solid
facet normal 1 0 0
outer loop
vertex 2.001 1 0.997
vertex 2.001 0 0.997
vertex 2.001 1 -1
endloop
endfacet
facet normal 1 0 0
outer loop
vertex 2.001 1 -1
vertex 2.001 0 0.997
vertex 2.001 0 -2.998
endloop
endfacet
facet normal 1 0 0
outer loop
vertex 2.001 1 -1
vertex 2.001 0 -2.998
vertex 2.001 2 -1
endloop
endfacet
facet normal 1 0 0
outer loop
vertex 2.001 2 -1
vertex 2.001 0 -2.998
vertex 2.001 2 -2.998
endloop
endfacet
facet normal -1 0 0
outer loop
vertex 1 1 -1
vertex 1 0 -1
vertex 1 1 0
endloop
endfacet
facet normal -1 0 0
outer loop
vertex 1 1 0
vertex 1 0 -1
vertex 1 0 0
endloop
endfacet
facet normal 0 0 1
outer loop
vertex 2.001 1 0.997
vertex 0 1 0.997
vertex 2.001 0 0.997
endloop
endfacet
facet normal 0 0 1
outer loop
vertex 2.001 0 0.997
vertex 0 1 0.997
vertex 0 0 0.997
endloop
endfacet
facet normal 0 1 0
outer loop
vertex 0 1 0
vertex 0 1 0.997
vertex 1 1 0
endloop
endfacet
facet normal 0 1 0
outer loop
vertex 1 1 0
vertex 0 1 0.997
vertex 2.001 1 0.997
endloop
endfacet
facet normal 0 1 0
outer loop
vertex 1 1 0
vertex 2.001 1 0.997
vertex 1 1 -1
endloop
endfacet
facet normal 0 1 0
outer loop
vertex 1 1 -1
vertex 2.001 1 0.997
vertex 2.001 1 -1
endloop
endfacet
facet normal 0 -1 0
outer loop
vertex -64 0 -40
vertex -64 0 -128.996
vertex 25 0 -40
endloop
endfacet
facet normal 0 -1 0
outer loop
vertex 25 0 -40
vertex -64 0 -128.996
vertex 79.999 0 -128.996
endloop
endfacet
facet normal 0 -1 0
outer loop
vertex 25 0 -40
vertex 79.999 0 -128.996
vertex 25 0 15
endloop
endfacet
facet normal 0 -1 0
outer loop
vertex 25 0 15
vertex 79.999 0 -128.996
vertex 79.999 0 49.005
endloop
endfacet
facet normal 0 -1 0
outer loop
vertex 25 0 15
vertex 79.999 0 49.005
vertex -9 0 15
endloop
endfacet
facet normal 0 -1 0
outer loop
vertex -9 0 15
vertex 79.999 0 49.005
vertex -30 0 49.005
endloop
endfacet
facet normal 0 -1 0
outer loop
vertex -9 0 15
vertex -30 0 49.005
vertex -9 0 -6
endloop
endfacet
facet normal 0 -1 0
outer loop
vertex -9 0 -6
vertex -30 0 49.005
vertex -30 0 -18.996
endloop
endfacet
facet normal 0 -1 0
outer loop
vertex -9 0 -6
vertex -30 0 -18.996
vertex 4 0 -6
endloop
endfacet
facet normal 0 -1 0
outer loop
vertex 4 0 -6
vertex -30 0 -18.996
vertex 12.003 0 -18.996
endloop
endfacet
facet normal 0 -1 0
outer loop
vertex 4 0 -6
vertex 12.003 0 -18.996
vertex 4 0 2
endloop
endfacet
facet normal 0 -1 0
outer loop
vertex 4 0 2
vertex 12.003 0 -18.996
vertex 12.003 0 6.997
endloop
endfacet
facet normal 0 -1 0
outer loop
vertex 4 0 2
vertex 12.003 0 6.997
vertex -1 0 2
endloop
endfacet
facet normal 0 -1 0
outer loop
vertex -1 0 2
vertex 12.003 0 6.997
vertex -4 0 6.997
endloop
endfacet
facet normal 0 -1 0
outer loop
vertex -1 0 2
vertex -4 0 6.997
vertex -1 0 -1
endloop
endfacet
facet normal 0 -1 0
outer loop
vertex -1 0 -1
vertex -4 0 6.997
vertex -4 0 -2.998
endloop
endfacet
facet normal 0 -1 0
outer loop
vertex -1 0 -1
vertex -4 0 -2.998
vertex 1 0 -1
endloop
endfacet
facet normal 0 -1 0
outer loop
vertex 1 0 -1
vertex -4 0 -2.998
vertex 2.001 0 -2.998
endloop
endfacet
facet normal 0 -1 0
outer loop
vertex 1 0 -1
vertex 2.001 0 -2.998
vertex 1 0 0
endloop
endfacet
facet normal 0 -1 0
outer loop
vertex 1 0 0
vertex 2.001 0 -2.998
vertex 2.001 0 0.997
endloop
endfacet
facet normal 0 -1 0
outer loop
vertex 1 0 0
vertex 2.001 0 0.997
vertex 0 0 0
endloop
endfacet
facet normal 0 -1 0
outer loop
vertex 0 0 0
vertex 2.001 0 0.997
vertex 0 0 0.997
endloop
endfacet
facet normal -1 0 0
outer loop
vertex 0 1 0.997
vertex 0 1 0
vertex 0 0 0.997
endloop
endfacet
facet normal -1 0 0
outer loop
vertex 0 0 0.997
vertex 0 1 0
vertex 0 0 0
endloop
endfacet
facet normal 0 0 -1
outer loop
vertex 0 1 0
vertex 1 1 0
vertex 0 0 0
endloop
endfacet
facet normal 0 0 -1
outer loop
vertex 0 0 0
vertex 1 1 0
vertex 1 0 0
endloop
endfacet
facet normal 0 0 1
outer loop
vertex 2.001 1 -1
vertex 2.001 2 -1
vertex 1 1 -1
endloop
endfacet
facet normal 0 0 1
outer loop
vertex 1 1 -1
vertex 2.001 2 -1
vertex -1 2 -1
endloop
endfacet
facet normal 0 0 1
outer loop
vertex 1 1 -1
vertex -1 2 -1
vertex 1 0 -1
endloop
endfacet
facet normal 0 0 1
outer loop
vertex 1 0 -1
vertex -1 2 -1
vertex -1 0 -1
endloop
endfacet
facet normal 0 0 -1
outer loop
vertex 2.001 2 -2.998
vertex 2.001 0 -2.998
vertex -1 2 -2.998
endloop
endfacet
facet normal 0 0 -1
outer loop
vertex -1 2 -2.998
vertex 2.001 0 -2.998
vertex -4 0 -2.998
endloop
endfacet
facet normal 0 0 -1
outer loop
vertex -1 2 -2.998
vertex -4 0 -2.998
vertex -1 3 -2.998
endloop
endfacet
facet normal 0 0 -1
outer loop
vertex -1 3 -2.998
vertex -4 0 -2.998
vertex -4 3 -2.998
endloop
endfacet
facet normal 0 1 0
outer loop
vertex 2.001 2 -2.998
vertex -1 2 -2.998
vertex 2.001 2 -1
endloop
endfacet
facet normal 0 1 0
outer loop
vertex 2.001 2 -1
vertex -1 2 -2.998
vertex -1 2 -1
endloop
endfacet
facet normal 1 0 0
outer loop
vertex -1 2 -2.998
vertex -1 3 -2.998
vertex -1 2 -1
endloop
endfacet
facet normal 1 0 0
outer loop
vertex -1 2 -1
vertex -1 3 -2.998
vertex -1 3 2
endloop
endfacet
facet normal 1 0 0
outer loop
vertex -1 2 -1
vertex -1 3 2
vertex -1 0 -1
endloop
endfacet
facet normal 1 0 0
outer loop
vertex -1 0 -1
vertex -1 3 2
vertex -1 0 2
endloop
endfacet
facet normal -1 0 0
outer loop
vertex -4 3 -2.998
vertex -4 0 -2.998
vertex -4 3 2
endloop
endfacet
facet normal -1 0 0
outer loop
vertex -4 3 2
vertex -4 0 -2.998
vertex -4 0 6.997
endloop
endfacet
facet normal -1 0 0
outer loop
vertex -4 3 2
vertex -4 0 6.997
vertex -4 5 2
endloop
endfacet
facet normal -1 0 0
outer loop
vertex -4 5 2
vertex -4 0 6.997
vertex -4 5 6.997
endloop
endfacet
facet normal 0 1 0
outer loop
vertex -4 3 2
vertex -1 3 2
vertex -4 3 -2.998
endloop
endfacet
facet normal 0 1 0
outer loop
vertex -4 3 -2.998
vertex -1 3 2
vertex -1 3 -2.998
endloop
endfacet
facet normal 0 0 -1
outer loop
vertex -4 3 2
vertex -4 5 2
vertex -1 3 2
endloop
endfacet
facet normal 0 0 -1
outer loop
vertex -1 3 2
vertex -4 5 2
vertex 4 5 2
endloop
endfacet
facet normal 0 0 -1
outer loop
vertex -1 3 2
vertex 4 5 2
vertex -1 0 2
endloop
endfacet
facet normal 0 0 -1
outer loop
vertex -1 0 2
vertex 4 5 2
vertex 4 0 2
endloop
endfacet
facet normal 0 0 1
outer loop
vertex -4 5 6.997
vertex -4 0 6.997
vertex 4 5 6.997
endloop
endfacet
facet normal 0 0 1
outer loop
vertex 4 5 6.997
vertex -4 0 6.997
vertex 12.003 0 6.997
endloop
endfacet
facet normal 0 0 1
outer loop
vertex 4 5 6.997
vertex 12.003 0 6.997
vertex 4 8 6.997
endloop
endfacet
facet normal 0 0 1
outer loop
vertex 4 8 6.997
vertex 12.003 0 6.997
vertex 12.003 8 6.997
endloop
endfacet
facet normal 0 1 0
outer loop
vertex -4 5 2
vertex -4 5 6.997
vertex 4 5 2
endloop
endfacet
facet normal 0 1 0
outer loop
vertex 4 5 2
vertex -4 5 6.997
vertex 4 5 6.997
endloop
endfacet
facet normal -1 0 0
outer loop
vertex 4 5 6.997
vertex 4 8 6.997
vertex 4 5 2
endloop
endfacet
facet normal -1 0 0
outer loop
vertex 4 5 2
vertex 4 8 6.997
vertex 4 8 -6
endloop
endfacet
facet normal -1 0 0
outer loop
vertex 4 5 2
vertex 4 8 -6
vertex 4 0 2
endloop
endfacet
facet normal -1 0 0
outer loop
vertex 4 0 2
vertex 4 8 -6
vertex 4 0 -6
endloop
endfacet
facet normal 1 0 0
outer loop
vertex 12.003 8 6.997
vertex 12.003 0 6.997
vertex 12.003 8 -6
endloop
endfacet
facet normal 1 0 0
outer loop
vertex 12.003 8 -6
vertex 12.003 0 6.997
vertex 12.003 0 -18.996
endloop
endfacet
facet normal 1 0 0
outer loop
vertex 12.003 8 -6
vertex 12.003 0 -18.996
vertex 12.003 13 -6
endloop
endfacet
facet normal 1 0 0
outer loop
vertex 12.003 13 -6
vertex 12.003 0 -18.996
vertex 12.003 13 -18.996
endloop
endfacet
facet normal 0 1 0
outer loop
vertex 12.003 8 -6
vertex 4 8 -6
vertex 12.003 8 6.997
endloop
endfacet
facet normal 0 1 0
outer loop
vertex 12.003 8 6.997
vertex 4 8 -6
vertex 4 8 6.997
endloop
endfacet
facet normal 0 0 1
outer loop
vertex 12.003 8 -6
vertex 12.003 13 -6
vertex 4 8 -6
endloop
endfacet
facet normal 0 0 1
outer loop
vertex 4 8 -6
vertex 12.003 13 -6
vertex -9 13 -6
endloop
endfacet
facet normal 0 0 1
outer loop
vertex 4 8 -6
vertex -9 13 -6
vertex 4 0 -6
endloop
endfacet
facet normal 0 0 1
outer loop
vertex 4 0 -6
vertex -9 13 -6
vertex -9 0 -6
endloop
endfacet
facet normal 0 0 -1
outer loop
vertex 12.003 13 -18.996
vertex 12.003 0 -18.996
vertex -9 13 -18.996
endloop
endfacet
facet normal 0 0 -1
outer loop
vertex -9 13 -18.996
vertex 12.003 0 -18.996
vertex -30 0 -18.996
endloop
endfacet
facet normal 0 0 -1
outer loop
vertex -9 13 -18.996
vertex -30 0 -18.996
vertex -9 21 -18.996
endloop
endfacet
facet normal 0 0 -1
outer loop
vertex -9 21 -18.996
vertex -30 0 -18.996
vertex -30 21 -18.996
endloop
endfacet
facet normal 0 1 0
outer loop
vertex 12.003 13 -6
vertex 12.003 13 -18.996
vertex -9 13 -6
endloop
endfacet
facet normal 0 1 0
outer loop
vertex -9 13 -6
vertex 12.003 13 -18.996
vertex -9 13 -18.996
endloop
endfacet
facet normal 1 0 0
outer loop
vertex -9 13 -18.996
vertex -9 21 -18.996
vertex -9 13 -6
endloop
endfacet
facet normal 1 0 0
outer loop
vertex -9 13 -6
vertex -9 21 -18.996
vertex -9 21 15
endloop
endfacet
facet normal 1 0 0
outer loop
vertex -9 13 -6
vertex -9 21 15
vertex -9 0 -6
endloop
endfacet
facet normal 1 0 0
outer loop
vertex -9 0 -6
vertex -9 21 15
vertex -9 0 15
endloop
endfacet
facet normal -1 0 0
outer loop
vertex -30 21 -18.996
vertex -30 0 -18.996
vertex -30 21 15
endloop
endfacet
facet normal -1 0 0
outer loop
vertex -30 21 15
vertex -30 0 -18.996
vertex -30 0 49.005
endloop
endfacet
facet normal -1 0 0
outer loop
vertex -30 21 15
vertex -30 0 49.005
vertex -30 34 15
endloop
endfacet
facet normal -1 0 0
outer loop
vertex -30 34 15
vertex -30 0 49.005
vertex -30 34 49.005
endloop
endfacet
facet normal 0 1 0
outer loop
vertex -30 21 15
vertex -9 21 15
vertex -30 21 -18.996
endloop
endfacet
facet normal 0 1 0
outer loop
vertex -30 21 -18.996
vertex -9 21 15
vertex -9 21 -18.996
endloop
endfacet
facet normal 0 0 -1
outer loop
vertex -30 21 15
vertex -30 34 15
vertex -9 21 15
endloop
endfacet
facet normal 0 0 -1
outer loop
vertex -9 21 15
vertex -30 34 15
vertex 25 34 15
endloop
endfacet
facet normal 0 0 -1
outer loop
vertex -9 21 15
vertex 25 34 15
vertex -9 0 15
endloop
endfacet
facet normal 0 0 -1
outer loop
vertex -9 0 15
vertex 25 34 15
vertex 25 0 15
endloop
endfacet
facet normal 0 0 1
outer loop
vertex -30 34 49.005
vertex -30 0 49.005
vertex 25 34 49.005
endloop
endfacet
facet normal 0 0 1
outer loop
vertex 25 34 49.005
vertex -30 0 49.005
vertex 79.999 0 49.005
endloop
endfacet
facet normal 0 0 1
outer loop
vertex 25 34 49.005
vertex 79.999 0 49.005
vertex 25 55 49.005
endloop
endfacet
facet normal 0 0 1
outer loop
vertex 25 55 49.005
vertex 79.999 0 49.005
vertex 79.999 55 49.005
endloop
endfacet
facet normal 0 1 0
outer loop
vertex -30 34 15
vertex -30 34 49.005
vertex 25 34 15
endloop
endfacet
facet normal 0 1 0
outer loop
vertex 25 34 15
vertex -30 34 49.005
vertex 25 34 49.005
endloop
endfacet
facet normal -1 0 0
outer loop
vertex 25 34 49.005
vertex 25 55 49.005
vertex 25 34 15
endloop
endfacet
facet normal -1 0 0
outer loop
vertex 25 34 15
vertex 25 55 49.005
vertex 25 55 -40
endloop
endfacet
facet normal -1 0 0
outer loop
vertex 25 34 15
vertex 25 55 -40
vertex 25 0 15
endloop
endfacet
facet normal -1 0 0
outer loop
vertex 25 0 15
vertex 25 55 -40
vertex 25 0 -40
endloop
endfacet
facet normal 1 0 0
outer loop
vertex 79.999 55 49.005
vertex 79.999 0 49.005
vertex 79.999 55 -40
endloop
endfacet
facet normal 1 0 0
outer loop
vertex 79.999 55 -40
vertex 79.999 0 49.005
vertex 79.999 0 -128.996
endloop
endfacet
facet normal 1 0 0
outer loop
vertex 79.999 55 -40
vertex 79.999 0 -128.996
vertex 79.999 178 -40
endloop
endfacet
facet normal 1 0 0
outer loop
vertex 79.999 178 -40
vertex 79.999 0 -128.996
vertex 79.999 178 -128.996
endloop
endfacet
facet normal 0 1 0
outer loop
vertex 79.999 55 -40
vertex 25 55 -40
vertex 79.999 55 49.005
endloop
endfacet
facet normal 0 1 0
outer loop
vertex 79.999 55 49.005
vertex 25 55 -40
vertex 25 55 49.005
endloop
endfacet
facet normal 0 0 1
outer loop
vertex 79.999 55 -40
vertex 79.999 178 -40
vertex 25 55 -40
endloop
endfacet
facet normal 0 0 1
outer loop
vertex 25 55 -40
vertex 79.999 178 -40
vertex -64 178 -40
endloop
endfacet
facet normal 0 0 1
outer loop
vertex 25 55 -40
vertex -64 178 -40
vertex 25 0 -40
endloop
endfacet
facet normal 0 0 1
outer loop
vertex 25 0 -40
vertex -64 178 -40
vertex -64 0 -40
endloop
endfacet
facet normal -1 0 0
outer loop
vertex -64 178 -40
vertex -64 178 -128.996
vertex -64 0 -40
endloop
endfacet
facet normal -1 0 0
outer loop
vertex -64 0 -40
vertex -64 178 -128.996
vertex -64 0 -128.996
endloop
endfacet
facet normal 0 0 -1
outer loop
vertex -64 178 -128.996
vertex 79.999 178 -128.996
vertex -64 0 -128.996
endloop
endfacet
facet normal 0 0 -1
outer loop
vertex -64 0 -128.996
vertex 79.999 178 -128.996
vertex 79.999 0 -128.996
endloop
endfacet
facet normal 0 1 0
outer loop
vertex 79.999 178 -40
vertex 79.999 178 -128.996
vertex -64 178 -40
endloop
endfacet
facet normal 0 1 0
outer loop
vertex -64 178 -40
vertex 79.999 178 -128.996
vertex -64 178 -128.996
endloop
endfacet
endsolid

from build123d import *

# Parameters (mm, degrees)
BOSS_EXTRUDE1_DEPTH  = 1
BOSS_EXTRUDE2_DEPTH  = 2
BOSS_EXTRUDE3_DEPTH  = 3
BOSS_EXTRUDE4_DEPTH  = 5
BOSS_EXTRUDE5_DEPTH  = 8
BOSS_EXTRUDE6_DEPTH  = 13
BOSS_EXTRUDE7_DEPTH  = 21
BOSS_EXTRUDE8_DEPTH  = 34
BOSS_EXTRUDE9_DEPTH  = 55
BOSS_EXTRUDE10_DEPTH = 178


with BuildPart() as part:
    # Sketch1 → Boss-Extrude1 (new body)
    with BuildSketch(Plane(origin=(0, 0, 0), x_dir=(1, 0, 0), z_dir=(0, 1, 0))):
        Polygon((1, 0), (0, 0), (0, -0.997190903), (2.001284941, -0.997190903), (2.001284941, 1), (1, 1), align=None)
    extrude(amount=BOSS_EXTRUDE1_DEPTH)

    # Sketch1<3> → Boss-Extrude2 (add)
    with BuildSketch(Plane(origin=(0, 0, 0), x_dir=(1, 0, 0), z_dir=(0, 1, 0))):
        Polygon((-1, 1), (1, 1), (2.001284941, 1), (2.001284941, 2.997699814), (-1, 2.997699814), align=None)
    extrude(amount=BOSS_EXTRUDE2_DEPTH)

    # Sketch1<4> → Boss-Extrude3 (add)
    with BuildSketch(Plane(origin=(0, 0, 0), x_dir=(1, 0, 0), z_dir=(0, 1, 0))):
        Polygon((-1, -2), (-1, 1), (-1, 2.997699814), (-3.999741098, 2.997699814), (-3.999741098, -2), align=None)
    extrude(amount=BOSS_EXTRUDE3_DEPTH)

    # Sketch1<5> → Boss-Extrude4 (add)
    with BuildSketch(Plane(origin=(0, 0, 0), x_dir=(1, 0, 0), z_dir=(0, 1, 0))):
        Polygon((4, -2), (-1, -2), (-3.999741098, -2), (-3.999741098, -6.996932288), (4, -6.996932288), align=None)
    extrude(amount=BOSS_EXTRUDE4_DEPTH)

    # Sketch1<6> → Boss-Extrude5 (add)
    with BuildSketch(Plane(origin=(0, 0, 0), x_dir=(1, 0, 0), z_dir=(0, 1, 0))):
        Polygon((4, 6), (4, -2), (4, -6.996932288), (12.003242926, -6.996932288), (12.003242926, 6), align=None)
    extrude(amount=BOSS_EXTRUDE5_DEPTH)

    # Sketch1<7> → Boss-Extrude6 (add)
    with BuildSketch(Plane(origin=(0, 0, 0), x_dir=(1, 0, 0), z_dir=(0, 1, 0))):
        Polygon((-9, 6), (4, 6), (12.003242926, 6), (12.003242926, 18.995575243), (-9, 18.995575243), align=None)
    extrude(amount=BOSS_EXTRUDE6_DEPTH)

    # Sketch1<8> → Boss-Extrude7 (add)
    with BuildSketch(Plane(origin=(0, 0, 0), x_dir=(1, 0, 0), z_dir=(0, 1, 0))):
        Polygon((-9, -15), (-9, 6), (-9, 18.995575243), (-30.000063684, 18.995575243), (-30.000063684, -15), align=None)
    extrude(amount=BOSS_EXTRUDE7_DEPTH)

    # Sketch1<9> → Boss-Extrude8 (add)
    with BuildSketch(Plane(origin=(0, 0, 0), x_dir=(1, 0, 0), z_dir=(0, 1, 0))):
        Polygon((25, -15), (-9, -15), (-30.000063684, -15), (-30.000063684, -49.004916202), (25, -49.004916202), align=None)
    extrude(amount=BOSS_EXTRUDE8_DEPTH)

    # Sketch1<10> → Boss-Extrude9 (add)
    with BuildSketch(Plane(origin=(0, 0, 0), x_dir=(1, 0, 0), z_dir=(0, 1, 0))):
        Polygon((25, 40), (25, -15), (25, -49.004916202), (79.998803233, -49.004916202), (79.998803233, 40), align=None)
    extrude(amount=BOSS_EXTRUDE9_DEPTH)

    # Sketch1<12> → Boss-Extrude10 (add)
    with BuildSketch(Plane(origin=(0, 0, 0), x_dir=(1, 0, 0), z_dir=(0, 1, 0))):
        Polygon((-64, 40), (25, 40), (79.998803233, 40), (79.998803233, 128.996056825), (-64, 128.996056825), align=None)
    extrude(amount=BOSS_EXTRUDE10_DEPTH)


solid = part.part
